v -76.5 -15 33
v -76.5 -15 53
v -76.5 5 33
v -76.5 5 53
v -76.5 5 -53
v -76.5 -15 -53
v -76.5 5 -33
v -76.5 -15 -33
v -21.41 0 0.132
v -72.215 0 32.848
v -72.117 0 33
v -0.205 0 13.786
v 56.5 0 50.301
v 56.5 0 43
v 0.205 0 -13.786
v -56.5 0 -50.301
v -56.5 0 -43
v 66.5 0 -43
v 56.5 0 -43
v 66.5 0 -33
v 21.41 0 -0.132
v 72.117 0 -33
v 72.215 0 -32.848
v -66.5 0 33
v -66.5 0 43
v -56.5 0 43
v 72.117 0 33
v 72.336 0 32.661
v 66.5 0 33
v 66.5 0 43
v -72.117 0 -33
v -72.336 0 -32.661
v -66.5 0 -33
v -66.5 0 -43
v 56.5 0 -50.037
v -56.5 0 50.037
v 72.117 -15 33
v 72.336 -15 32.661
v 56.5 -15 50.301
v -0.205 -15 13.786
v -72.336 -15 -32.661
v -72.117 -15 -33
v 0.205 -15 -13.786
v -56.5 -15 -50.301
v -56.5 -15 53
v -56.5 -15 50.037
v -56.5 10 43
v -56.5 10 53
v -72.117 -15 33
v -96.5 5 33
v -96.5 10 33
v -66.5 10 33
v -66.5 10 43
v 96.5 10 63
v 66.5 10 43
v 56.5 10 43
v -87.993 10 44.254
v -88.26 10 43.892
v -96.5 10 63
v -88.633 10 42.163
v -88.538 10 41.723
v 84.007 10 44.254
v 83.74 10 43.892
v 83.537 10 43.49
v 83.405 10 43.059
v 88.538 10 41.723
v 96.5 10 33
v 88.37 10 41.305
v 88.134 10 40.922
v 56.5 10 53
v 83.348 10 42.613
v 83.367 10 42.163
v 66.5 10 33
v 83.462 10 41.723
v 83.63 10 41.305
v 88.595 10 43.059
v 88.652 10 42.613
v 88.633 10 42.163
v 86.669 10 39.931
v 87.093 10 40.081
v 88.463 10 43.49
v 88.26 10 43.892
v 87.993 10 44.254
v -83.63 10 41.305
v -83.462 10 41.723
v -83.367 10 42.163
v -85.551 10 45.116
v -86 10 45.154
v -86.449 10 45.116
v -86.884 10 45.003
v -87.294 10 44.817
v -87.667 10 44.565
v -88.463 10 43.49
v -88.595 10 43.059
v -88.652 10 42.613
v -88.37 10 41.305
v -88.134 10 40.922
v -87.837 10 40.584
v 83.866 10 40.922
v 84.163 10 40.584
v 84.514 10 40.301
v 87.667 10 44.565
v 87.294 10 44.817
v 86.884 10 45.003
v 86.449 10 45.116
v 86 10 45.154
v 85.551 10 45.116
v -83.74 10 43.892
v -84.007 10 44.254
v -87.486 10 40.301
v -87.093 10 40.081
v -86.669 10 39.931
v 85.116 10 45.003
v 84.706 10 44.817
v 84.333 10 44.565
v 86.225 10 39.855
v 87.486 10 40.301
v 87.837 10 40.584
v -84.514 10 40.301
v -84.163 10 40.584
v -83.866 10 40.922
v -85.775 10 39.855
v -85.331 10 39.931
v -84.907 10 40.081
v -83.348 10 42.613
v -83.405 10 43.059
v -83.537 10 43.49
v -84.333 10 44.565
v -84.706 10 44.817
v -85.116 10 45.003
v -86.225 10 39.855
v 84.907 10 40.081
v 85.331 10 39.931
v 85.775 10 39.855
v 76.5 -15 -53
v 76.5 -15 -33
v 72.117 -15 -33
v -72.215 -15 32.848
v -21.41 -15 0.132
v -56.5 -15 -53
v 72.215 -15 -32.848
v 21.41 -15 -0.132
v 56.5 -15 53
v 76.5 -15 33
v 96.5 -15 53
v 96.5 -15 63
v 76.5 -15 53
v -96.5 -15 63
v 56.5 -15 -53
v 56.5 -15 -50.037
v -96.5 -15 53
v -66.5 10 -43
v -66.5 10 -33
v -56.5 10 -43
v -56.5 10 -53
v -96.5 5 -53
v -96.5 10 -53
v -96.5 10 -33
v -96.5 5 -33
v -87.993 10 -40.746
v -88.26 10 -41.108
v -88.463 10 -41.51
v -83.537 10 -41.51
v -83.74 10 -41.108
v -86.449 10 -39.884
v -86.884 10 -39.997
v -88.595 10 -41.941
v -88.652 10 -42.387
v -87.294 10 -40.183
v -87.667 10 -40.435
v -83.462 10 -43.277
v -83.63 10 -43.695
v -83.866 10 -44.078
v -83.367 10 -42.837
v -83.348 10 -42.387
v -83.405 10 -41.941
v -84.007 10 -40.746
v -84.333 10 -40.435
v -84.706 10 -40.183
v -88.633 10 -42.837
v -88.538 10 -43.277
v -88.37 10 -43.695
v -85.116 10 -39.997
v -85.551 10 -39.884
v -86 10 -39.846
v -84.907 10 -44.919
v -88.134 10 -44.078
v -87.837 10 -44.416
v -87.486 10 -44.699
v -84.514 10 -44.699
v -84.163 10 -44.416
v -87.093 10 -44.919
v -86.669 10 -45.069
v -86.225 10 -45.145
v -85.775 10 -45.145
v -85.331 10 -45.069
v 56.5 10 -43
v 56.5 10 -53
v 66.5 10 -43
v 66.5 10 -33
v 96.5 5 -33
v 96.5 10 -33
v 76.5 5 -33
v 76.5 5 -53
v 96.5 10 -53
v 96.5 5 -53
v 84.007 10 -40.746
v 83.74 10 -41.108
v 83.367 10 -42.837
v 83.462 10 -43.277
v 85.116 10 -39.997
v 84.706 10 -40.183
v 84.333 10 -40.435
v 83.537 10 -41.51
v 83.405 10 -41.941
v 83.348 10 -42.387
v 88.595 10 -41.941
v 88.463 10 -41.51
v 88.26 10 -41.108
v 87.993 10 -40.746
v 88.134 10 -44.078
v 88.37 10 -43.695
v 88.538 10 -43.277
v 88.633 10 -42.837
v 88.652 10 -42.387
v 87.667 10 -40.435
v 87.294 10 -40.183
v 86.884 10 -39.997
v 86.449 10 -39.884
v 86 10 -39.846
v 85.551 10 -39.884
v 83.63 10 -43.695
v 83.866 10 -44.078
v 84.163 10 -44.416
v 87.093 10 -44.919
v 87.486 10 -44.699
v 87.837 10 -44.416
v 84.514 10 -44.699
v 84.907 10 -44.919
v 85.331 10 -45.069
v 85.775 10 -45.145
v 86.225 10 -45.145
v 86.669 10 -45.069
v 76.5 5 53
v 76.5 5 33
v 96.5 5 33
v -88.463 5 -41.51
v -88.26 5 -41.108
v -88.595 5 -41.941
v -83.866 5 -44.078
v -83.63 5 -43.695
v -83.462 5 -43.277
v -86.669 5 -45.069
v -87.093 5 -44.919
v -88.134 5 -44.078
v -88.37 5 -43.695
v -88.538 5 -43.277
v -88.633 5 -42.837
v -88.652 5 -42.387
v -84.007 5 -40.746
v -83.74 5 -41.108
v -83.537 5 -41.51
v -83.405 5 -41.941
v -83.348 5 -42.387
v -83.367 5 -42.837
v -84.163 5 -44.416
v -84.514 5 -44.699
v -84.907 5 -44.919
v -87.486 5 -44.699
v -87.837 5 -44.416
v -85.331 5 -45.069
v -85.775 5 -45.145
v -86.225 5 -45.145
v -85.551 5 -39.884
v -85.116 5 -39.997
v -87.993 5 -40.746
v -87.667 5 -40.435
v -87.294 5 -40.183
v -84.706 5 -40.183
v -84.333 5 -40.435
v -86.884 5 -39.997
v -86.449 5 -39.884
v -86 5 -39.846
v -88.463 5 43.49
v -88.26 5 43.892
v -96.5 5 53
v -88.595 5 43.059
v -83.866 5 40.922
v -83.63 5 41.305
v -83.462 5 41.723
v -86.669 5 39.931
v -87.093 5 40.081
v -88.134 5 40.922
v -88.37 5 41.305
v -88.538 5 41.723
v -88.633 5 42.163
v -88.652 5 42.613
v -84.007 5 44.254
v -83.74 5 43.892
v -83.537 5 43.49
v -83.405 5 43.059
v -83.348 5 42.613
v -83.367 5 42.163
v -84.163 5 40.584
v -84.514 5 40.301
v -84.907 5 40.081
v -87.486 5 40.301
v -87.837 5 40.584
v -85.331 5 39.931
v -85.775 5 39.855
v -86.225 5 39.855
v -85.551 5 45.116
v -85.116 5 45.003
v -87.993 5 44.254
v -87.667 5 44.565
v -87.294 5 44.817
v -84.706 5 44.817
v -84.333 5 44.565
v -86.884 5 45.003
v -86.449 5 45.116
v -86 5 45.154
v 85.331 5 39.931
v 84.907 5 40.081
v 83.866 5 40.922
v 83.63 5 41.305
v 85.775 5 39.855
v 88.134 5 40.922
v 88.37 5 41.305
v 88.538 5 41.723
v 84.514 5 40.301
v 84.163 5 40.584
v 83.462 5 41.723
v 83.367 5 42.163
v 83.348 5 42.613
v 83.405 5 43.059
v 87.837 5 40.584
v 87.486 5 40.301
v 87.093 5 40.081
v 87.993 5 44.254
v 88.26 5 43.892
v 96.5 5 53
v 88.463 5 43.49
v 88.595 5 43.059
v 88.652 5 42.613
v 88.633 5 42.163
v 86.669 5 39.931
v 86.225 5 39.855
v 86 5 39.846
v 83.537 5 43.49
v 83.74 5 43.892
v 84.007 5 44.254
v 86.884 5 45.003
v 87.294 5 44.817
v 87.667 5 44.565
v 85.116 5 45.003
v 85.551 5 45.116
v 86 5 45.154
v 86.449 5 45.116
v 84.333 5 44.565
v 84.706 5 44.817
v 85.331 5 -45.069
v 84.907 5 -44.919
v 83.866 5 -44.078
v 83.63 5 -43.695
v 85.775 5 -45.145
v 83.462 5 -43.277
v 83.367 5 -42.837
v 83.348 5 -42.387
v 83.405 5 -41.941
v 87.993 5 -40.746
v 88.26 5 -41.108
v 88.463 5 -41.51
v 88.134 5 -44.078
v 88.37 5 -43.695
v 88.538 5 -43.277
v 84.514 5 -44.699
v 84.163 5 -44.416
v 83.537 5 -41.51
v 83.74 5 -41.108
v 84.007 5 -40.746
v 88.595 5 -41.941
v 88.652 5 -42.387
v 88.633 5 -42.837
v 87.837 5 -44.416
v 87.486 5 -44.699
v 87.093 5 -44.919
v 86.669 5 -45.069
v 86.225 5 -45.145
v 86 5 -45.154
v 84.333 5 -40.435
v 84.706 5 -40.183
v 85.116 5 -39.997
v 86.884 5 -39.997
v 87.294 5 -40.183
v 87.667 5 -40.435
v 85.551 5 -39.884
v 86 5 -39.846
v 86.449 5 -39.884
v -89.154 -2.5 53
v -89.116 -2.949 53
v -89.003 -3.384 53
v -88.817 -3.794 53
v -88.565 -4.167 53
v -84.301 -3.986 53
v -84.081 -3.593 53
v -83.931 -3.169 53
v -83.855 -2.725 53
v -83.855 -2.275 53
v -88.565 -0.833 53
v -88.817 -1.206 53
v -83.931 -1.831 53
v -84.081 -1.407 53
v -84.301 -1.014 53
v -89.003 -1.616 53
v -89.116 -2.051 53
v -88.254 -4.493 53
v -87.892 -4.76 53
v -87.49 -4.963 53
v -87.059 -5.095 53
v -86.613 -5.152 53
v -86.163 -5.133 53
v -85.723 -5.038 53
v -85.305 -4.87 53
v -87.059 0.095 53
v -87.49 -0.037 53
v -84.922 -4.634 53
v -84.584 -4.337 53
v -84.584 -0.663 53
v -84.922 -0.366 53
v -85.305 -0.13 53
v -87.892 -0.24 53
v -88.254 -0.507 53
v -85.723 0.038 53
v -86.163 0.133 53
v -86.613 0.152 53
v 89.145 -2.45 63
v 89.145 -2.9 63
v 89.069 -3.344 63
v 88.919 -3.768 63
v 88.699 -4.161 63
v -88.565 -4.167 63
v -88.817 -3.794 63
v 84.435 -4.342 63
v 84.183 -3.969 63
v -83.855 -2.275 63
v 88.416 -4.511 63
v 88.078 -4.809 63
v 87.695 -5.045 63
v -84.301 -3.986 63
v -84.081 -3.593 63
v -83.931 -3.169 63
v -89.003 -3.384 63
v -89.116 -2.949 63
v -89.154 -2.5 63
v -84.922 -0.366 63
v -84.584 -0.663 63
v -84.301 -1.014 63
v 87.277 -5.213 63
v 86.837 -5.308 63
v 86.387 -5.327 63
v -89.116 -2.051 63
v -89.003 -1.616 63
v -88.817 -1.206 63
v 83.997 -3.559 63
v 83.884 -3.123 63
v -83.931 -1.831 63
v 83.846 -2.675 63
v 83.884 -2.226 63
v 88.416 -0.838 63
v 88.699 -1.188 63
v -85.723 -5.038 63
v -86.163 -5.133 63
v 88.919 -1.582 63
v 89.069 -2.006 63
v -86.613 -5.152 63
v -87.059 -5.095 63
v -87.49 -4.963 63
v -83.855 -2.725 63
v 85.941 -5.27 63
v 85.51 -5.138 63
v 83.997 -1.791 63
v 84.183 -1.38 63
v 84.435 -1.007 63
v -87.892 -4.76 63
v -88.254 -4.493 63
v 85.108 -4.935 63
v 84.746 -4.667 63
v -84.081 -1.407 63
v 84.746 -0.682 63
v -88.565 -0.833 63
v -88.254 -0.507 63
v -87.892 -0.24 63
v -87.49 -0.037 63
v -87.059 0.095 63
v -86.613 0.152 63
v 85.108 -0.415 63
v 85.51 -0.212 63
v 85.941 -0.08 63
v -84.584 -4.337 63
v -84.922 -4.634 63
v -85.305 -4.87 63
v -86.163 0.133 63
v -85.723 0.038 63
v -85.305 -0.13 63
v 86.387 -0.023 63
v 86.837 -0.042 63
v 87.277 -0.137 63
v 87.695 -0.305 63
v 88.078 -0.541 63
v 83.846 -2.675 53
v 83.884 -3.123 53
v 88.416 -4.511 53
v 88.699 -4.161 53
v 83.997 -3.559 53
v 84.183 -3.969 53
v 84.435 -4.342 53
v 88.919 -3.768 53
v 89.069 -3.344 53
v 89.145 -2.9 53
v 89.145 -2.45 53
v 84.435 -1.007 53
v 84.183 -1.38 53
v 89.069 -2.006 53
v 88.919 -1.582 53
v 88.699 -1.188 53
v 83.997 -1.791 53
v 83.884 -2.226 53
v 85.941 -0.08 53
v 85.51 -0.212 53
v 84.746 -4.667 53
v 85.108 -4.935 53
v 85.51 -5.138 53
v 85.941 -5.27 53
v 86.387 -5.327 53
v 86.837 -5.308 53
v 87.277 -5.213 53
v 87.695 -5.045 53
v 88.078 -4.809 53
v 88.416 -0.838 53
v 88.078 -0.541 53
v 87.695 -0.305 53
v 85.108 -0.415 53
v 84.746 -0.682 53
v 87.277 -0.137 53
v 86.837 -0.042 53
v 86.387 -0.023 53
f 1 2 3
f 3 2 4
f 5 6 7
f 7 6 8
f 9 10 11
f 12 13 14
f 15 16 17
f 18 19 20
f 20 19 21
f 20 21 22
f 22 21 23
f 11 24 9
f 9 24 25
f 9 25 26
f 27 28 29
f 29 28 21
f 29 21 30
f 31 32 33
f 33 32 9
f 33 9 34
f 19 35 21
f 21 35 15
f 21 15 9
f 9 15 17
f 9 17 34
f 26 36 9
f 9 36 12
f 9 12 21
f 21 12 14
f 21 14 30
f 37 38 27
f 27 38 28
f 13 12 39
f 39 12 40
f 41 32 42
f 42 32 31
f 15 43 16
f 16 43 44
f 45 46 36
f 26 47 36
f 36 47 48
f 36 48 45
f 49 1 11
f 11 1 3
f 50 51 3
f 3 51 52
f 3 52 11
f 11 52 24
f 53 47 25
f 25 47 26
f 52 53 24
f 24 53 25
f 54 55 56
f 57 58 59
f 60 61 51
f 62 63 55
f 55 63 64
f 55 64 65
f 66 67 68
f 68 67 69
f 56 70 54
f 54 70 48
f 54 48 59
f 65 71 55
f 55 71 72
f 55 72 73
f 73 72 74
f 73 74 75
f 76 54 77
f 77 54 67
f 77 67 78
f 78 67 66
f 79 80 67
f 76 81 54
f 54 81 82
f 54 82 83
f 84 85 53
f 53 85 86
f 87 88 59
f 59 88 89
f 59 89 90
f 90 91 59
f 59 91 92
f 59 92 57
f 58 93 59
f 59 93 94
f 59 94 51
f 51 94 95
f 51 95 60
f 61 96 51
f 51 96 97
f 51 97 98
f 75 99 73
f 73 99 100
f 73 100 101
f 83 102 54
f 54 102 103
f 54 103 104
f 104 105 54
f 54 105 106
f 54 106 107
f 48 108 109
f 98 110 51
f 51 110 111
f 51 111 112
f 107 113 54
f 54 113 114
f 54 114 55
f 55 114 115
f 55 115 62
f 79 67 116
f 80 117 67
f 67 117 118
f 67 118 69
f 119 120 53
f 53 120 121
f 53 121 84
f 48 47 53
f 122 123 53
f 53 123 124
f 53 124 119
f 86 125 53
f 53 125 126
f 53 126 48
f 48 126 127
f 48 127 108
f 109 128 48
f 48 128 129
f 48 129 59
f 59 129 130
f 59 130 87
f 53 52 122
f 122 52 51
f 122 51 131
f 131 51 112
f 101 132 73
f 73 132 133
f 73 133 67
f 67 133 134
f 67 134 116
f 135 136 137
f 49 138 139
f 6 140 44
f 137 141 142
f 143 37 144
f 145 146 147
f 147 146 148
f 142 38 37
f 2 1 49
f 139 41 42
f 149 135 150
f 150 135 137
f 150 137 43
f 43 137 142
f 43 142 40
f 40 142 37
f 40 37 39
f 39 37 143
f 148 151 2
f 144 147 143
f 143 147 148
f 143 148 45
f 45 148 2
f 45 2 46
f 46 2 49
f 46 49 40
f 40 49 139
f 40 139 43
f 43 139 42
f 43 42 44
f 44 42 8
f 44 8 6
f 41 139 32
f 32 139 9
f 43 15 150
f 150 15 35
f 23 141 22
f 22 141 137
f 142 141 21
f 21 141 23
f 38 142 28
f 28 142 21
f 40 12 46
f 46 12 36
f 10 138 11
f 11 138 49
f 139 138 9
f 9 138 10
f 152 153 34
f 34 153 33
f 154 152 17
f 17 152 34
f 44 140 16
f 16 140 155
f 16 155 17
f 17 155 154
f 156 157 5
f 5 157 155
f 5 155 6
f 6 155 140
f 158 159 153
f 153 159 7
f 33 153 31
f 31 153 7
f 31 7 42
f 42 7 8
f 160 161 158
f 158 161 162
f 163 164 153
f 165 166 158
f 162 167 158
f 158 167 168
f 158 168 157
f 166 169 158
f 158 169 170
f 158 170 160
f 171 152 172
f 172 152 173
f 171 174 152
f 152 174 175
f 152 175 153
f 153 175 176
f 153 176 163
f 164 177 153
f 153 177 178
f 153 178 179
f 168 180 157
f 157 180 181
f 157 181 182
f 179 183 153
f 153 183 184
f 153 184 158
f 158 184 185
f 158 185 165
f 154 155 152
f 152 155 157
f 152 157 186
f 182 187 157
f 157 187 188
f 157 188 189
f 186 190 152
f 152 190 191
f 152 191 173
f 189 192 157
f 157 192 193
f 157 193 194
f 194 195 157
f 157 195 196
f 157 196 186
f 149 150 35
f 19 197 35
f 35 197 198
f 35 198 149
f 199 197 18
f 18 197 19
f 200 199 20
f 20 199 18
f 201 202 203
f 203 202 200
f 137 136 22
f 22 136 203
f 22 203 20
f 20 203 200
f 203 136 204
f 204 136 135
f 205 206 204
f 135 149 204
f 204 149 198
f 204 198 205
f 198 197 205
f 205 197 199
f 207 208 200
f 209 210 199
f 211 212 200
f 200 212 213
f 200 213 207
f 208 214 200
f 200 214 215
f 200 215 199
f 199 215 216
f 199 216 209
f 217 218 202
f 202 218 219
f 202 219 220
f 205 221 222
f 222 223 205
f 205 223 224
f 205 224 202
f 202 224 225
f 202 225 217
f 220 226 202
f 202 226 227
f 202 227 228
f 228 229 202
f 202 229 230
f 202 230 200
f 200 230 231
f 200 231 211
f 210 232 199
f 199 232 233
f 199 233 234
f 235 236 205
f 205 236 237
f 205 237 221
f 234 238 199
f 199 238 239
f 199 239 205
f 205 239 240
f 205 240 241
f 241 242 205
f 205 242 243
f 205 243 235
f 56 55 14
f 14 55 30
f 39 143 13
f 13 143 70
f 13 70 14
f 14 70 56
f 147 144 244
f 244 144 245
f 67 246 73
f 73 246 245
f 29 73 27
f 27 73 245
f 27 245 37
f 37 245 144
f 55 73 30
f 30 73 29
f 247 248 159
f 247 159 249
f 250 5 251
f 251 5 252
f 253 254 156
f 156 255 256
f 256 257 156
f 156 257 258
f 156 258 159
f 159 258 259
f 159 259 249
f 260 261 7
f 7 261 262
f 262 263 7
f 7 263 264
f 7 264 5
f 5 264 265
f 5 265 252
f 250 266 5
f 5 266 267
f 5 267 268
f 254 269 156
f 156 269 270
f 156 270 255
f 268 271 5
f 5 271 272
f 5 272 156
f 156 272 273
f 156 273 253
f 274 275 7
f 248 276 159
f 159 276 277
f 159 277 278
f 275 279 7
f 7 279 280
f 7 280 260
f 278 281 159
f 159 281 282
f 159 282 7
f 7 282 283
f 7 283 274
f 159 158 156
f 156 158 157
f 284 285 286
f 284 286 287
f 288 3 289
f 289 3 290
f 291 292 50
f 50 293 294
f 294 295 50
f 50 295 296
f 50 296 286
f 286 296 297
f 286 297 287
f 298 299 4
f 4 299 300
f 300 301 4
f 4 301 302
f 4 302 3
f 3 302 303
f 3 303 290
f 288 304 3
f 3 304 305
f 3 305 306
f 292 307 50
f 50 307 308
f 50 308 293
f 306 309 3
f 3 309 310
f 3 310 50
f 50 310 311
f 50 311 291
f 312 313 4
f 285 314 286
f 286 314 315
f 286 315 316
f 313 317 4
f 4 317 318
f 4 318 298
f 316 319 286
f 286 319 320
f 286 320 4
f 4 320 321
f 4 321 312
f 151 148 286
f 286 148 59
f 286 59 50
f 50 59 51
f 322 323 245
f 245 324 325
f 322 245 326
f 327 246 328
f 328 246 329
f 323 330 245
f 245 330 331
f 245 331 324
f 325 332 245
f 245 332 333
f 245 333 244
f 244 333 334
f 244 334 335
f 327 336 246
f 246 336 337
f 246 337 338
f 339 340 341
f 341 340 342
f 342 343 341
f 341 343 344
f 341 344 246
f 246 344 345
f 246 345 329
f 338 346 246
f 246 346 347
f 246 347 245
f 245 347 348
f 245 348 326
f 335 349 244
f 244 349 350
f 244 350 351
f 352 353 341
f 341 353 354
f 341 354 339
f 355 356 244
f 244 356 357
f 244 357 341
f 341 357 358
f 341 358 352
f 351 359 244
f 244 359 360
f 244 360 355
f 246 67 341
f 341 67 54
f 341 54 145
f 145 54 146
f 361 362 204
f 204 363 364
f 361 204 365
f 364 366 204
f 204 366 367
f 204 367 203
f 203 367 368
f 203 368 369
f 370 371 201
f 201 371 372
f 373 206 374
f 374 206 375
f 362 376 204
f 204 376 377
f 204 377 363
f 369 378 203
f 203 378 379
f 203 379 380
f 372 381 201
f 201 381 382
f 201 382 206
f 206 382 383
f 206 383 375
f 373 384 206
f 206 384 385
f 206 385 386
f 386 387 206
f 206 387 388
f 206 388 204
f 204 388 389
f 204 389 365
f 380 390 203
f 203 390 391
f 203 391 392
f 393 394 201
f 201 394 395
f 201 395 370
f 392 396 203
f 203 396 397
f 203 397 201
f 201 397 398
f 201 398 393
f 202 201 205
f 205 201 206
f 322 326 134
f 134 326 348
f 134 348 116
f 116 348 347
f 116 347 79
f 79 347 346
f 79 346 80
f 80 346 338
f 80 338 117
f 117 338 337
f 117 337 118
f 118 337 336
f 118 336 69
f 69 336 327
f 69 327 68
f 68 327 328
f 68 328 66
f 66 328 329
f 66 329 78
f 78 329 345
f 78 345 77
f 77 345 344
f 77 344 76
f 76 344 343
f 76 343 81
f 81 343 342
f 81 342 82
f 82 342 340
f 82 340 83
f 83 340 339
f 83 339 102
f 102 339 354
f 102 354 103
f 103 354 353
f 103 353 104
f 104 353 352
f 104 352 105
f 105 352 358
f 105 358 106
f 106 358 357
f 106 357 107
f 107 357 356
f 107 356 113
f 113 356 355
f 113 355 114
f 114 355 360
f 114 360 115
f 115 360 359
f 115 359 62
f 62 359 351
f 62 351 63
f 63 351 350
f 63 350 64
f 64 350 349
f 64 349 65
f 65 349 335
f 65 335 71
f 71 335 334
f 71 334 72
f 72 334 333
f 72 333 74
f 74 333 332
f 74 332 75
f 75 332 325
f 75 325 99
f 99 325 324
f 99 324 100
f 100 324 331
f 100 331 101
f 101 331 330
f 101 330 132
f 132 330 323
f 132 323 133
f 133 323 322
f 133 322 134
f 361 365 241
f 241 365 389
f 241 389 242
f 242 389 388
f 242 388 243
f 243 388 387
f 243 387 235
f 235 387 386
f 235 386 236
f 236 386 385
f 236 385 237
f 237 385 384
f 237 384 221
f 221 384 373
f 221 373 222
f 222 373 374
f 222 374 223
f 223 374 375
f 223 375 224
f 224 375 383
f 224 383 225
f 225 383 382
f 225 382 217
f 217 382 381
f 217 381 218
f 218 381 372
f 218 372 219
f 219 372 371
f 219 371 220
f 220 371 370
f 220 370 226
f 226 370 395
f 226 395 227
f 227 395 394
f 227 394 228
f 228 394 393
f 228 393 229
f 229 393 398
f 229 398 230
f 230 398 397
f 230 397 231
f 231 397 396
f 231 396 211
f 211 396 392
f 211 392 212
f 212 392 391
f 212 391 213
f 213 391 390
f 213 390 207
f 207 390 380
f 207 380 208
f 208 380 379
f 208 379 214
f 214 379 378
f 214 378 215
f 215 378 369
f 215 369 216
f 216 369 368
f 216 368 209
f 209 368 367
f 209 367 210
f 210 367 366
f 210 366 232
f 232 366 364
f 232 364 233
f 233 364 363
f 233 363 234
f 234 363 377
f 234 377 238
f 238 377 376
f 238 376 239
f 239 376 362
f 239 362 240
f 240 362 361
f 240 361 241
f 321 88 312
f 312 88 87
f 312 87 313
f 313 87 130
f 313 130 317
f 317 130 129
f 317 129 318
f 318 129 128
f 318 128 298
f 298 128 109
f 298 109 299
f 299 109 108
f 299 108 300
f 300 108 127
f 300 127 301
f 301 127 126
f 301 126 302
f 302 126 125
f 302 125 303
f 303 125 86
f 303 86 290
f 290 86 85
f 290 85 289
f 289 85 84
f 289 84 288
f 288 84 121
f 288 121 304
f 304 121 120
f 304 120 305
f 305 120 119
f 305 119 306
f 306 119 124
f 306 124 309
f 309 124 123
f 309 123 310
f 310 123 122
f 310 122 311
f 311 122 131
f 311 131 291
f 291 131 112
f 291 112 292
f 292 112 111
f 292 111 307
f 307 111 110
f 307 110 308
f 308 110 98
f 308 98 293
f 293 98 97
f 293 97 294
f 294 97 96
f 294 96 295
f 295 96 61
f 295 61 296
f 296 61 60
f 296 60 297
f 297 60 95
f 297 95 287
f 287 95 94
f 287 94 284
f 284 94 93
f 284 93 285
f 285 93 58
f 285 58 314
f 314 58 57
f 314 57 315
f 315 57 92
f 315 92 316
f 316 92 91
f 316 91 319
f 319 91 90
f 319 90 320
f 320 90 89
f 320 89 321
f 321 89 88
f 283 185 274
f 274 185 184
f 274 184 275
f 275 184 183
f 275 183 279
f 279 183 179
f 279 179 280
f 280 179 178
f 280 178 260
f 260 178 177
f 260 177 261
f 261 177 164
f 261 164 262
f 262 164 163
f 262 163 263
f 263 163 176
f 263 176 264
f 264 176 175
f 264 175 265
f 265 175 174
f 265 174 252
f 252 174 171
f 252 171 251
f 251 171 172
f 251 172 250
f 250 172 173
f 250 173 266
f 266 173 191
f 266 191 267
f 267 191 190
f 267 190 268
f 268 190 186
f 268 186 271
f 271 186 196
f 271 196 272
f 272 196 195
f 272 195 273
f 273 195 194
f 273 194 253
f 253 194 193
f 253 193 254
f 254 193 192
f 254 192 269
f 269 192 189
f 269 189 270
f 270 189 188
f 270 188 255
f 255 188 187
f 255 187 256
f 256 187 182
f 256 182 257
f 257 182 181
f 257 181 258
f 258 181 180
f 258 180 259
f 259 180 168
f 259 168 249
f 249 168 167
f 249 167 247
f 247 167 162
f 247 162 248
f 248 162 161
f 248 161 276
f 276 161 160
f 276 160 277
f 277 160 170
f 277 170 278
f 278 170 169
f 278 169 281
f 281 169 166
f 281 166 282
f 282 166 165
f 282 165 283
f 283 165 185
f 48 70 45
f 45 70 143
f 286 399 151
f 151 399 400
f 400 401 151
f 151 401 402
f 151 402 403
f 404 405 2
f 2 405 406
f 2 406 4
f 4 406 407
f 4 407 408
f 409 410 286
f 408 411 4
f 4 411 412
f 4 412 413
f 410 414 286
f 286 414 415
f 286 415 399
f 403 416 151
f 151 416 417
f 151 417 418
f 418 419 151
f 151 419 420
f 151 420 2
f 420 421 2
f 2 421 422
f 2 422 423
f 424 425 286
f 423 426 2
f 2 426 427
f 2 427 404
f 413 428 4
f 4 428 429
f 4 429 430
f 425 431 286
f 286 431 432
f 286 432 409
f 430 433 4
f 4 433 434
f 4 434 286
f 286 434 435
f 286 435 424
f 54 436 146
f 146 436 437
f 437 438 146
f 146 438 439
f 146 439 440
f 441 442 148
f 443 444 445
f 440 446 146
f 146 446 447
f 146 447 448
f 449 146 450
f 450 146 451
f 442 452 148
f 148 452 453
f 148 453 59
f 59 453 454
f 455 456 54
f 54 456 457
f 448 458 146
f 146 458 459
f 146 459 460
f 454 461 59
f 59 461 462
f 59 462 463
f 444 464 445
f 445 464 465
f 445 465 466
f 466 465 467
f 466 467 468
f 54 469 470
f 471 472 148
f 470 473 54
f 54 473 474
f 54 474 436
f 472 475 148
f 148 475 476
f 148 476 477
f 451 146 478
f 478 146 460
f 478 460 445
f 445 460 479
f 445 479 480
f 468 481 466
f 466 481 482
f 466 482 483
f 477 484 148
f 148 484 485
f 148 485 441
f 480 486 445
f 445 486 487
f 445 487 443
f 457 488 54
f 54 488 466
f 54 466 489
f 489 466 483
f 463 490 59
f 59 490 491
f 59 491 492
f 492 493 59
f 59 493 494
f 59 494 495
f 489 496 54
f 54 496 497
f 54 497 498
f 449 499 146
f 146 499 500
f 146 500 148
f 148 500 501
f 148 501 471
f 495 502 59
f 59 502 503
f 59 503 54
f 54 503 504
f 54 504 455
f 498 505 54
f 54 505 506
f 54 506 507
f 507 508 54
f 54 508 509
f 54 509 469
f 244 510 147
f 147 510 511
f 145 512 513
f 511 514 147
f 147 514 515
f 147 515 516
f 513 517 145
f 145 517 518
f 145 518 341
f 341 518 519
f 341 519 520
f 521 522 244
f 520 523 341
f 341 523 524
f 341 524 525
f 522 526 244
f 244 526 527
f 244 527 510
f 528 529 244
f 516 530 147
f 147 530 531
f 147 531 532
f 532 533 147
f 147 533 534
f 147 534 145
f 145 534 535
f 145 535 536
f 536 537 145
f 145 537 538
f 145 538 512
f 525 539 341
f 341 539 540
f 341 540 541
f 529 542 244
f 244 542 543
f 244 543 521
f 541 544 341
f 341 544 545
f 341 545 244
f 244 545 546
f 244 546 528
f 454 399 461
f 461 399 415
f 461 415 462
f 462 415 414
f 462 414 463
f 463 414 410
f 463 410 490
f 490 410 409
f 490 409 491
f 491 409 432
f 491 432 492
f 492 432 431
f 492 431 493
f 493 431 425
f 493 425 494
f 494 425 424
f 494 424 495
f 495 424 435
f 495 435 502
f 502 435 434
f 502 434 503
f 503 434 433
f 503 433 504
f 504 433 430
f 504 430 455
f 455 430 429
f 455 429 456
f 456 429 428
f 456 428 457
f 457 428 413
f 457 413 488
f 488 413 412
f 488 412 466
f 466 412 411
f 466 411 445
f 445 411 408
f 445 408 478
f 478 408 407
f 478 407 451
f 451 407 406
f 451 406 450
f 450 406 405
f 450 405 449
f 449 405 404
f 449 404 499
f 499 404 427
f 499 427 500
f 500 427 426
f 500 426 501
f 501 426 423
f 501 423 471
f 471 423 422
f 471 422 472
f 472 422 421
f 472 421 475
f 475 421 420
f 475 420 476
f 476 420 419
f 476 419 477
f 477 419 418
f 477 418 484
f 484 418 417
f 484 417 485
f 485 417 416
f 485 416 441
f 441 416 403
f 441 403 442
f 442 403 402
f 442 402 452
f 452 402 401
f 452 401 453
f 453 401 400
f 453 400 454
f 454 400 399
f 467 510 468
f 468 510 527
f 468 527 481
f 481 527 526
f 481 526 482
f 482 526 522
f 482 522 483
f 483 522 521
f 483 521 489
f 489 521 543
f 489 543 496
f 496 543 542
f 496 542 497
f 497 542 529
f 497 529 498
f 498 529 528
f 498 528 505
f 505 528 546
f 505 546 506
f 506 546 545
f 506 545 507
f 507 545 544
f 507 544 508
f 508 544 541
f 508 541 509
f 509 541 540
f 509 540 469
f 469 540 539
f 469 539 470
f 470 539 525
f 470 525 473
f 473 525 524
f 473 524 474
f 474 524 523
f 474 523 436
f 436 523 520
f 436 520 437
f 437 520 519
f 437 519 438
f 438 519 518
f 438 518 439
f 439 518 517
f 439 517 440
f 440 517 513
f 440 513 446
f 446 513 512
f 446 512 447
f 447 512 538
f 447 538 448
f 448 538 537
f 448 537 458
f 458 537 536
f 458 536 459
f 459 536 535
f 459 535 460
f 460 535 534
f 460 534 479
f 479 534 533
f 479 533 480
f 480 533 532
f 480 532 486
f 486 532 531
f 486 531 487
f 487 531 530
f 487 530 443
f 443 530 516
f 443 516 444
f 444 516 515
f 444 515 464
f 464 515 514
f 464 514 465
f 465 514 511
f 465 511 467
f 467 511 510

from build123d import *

# Parameters (mm, degrees)
BOSS_EXTRUDE1_DEPTH        = 10
BOSS_EXTRUDE1_2_DEPTH      = 10
BOSS_EXTRUDE1_3_DEPTH      = 10
BOSS_EXTRUDE1_4_DEPTH      = 10
SKETCH1_3_W                = 20
SKETCH1_3_H                = 20
BOSS_EXTRUDE2_DEPTH        = 15
BOSS_EXTRUDE3_DEPTH        = 15
SKETCH3_W                  = 20
SKETCH3_H                  = 5
BOSS_EXTRUDE4_DEPTH        = 20
F_4_0_209_DIAMETER_HOLE1_D = 5.3086
SKETCH5_W                  = 193
SKETCH5_H                  = 25
BOSS_EXTRUDE5_DEPTH        = 10
F_4_0_209_DIAMETER_HOLE2_D = 5.3086


with BuildPart() as part:
    # Sketch1 → Boss-Extrude1 (new body)
    with BuildSketch(Plane(origin=(0, 0, 0), x_dir=(1, 0, 0), z_dir=(0, 1, 0))):
        Polygon((-56.5, 53), (-76.5, 53), (-76.5, 33), (-66.5, 33), (-66.5, 43), (-56.5, 43), align=None)
    extrude(amount=BOSS_EXTRUDE1_DEPTH)



with BuildPart() as body_2:
    # Sketch1 → Boss-Extrude1 2 (new body)
    with BuildSketch(Plane(origin=(0, 0, 0), x_dir=(1, 0, 0), z_dir=(0, 1, 0))):
        Polygon((-66.5, -43), (-66.5, -33), (-76.5, -33), (-76.5, -53), (-56.5, -53), (-56.5, -43), align=None)
    extrude(amount=BOSS_EXTRUDE1_2_DEPTH)


with BuildPart() as body_3:
    # Sketch1 → Boss-Extrude1 3 (new body)
    with BuildSketch(Plane(origin=(0, 0, 0), x_dir=(1, 0, 0), z_dir=(0, 1, 0))):
        Polygon((76.5, -53), (76.5, -33), (66.5, -33), (66.5, -43), (56.5, -43), (56.5, -53), align=None)
    extrude(amount=BOSS_EXTRUDE1_3_DEPTH)


with BuildPart() as body_4:
    # Sketch1 → Boss-Extrude1 4 (new body)
    with BuildSketch(Plane(origin=(0, 0, 0), x_dir=(1, 0, 0), z_dir=(0, 1, 0))):
        Polygon((76.5, 53), (56.5, 53), (56.5, 43), (66.5, 43), (66.5, 33), (76.5, 33), align=None)
    extrude(amount=BOSS_EXTRUDE1_4_DEPTH)


with BuildPart() as part_1:
    add(part.part)

    add(body_2.part)  # Boss-Extrude2 merges body 2

    add(body_3.part)  # Boss-Extrude2 merges body 3

    add(body_4.part)  # Boss-Extrude2 merges body 4
    # Sketch1<3> → Boss-Extrude2 (add)
    with BuildSketch(Plane(origin=(0, 0, 0), x_dir=(1, 0, 0), z_dir=(0, 1, 0))):
        with Locations((-66.5, 43)):
            Rectangle(SKETCH1_3_W, SKETCH1_3_H)
        with Locations((-66.5, -43)):
            Rectangle(SKETCH1_3_W, SKETCH1_3_H)
        with Locations((66.5, -43)):
            Rectangle(SKETCH1_3_W, SKETCH1_3_H)
        with Locations((66.5, 43)):
            Rectangle(SKETCH1_3_W, SKETCH1_3_H)
    extrude(amount=-BOSS_EXTRUDE2_DEPTH)

    # Sketch2 → Boss-Extrude3 (add)
    with BuildSketch(Plane(origin=(0, 0, 0), x_dir=(1, 0, 0), z_dir=(0, 1, 0))):
        Polygon((-59.664368284, 52.338863371), (-72.335631716, 32.661136629), (-21.409556012, -0.132169696), (-72.215306836, -32.84799409), (-59.784693164, -52.15200591), (-0.205251763, -13.786456523), (59.664368284, -52.338863371), (72.335631716, -32.661136629), (21.409556012, 0.132169696), (72.215306836, 32.84799409), (59.784693164, 52.15200591), (0.205251763, 13.786456523), align=None)
    extrude(amount=-BOSS_EXTRUDE3_DEPTH)

    # Sketch3 → Boss-Extrude4 (add)
    with BuildSketch(Plane.ZY.offset(76.5)):
        with Locations((-43, 7.5)):
            Rectangle(SKETCH3_W, SKETCH3_H)
        with Locations((43, 7.5)):
            Rectangle(SKETCH3_W, SKETCH3_H)
    boss_extrude4 = extrude(amount=BOSS_EXTRUDE4_DEPTH)

    # Mirror1: Boss-Extrude4 across plane
    add(boss_extrude4.mirror(Plane(origin=(0, 0, 0), x_dir=(0, 0, 1), z_dir=(1, 0, 0))))

    # #4 (0.209) Diameter Hole1 (through all)
    with Locations(Plane(origin=(-86, 10, -42.5), x_dir=(0, 0, 1), z_dir=(0, 1, 0))):
        with Locations((0, 0), (85, 0), (0, 172), (85, 172)):
            Hole(F_4_0_209_DIAMETER_HOLE1_D / 2)

    # Sketch5 → Boss-Extrude5 (add)
    with BuildSketch(Plane.XY.offset(53)):
        with Locations((0, -2.5)):
            Rectangle(SKETCH5_W, SKETCH5_H)
    extrude(amount=BOSS_EXTRUDE5_DEPTH)

    # #4 (0.209) Diameter Hole2 (through all)
    with Locations(Plane(origin=(0, 0, 53), x_dir=(-1, 0, 0), z_dir=(0, 0, -1))):
        with Locations((-86.5, -2.674811851), (86.5, -2.5)):
            Hole(F_4_0_209_DIAMETER_HOLE2_D / 2)


solid = part_1.part
